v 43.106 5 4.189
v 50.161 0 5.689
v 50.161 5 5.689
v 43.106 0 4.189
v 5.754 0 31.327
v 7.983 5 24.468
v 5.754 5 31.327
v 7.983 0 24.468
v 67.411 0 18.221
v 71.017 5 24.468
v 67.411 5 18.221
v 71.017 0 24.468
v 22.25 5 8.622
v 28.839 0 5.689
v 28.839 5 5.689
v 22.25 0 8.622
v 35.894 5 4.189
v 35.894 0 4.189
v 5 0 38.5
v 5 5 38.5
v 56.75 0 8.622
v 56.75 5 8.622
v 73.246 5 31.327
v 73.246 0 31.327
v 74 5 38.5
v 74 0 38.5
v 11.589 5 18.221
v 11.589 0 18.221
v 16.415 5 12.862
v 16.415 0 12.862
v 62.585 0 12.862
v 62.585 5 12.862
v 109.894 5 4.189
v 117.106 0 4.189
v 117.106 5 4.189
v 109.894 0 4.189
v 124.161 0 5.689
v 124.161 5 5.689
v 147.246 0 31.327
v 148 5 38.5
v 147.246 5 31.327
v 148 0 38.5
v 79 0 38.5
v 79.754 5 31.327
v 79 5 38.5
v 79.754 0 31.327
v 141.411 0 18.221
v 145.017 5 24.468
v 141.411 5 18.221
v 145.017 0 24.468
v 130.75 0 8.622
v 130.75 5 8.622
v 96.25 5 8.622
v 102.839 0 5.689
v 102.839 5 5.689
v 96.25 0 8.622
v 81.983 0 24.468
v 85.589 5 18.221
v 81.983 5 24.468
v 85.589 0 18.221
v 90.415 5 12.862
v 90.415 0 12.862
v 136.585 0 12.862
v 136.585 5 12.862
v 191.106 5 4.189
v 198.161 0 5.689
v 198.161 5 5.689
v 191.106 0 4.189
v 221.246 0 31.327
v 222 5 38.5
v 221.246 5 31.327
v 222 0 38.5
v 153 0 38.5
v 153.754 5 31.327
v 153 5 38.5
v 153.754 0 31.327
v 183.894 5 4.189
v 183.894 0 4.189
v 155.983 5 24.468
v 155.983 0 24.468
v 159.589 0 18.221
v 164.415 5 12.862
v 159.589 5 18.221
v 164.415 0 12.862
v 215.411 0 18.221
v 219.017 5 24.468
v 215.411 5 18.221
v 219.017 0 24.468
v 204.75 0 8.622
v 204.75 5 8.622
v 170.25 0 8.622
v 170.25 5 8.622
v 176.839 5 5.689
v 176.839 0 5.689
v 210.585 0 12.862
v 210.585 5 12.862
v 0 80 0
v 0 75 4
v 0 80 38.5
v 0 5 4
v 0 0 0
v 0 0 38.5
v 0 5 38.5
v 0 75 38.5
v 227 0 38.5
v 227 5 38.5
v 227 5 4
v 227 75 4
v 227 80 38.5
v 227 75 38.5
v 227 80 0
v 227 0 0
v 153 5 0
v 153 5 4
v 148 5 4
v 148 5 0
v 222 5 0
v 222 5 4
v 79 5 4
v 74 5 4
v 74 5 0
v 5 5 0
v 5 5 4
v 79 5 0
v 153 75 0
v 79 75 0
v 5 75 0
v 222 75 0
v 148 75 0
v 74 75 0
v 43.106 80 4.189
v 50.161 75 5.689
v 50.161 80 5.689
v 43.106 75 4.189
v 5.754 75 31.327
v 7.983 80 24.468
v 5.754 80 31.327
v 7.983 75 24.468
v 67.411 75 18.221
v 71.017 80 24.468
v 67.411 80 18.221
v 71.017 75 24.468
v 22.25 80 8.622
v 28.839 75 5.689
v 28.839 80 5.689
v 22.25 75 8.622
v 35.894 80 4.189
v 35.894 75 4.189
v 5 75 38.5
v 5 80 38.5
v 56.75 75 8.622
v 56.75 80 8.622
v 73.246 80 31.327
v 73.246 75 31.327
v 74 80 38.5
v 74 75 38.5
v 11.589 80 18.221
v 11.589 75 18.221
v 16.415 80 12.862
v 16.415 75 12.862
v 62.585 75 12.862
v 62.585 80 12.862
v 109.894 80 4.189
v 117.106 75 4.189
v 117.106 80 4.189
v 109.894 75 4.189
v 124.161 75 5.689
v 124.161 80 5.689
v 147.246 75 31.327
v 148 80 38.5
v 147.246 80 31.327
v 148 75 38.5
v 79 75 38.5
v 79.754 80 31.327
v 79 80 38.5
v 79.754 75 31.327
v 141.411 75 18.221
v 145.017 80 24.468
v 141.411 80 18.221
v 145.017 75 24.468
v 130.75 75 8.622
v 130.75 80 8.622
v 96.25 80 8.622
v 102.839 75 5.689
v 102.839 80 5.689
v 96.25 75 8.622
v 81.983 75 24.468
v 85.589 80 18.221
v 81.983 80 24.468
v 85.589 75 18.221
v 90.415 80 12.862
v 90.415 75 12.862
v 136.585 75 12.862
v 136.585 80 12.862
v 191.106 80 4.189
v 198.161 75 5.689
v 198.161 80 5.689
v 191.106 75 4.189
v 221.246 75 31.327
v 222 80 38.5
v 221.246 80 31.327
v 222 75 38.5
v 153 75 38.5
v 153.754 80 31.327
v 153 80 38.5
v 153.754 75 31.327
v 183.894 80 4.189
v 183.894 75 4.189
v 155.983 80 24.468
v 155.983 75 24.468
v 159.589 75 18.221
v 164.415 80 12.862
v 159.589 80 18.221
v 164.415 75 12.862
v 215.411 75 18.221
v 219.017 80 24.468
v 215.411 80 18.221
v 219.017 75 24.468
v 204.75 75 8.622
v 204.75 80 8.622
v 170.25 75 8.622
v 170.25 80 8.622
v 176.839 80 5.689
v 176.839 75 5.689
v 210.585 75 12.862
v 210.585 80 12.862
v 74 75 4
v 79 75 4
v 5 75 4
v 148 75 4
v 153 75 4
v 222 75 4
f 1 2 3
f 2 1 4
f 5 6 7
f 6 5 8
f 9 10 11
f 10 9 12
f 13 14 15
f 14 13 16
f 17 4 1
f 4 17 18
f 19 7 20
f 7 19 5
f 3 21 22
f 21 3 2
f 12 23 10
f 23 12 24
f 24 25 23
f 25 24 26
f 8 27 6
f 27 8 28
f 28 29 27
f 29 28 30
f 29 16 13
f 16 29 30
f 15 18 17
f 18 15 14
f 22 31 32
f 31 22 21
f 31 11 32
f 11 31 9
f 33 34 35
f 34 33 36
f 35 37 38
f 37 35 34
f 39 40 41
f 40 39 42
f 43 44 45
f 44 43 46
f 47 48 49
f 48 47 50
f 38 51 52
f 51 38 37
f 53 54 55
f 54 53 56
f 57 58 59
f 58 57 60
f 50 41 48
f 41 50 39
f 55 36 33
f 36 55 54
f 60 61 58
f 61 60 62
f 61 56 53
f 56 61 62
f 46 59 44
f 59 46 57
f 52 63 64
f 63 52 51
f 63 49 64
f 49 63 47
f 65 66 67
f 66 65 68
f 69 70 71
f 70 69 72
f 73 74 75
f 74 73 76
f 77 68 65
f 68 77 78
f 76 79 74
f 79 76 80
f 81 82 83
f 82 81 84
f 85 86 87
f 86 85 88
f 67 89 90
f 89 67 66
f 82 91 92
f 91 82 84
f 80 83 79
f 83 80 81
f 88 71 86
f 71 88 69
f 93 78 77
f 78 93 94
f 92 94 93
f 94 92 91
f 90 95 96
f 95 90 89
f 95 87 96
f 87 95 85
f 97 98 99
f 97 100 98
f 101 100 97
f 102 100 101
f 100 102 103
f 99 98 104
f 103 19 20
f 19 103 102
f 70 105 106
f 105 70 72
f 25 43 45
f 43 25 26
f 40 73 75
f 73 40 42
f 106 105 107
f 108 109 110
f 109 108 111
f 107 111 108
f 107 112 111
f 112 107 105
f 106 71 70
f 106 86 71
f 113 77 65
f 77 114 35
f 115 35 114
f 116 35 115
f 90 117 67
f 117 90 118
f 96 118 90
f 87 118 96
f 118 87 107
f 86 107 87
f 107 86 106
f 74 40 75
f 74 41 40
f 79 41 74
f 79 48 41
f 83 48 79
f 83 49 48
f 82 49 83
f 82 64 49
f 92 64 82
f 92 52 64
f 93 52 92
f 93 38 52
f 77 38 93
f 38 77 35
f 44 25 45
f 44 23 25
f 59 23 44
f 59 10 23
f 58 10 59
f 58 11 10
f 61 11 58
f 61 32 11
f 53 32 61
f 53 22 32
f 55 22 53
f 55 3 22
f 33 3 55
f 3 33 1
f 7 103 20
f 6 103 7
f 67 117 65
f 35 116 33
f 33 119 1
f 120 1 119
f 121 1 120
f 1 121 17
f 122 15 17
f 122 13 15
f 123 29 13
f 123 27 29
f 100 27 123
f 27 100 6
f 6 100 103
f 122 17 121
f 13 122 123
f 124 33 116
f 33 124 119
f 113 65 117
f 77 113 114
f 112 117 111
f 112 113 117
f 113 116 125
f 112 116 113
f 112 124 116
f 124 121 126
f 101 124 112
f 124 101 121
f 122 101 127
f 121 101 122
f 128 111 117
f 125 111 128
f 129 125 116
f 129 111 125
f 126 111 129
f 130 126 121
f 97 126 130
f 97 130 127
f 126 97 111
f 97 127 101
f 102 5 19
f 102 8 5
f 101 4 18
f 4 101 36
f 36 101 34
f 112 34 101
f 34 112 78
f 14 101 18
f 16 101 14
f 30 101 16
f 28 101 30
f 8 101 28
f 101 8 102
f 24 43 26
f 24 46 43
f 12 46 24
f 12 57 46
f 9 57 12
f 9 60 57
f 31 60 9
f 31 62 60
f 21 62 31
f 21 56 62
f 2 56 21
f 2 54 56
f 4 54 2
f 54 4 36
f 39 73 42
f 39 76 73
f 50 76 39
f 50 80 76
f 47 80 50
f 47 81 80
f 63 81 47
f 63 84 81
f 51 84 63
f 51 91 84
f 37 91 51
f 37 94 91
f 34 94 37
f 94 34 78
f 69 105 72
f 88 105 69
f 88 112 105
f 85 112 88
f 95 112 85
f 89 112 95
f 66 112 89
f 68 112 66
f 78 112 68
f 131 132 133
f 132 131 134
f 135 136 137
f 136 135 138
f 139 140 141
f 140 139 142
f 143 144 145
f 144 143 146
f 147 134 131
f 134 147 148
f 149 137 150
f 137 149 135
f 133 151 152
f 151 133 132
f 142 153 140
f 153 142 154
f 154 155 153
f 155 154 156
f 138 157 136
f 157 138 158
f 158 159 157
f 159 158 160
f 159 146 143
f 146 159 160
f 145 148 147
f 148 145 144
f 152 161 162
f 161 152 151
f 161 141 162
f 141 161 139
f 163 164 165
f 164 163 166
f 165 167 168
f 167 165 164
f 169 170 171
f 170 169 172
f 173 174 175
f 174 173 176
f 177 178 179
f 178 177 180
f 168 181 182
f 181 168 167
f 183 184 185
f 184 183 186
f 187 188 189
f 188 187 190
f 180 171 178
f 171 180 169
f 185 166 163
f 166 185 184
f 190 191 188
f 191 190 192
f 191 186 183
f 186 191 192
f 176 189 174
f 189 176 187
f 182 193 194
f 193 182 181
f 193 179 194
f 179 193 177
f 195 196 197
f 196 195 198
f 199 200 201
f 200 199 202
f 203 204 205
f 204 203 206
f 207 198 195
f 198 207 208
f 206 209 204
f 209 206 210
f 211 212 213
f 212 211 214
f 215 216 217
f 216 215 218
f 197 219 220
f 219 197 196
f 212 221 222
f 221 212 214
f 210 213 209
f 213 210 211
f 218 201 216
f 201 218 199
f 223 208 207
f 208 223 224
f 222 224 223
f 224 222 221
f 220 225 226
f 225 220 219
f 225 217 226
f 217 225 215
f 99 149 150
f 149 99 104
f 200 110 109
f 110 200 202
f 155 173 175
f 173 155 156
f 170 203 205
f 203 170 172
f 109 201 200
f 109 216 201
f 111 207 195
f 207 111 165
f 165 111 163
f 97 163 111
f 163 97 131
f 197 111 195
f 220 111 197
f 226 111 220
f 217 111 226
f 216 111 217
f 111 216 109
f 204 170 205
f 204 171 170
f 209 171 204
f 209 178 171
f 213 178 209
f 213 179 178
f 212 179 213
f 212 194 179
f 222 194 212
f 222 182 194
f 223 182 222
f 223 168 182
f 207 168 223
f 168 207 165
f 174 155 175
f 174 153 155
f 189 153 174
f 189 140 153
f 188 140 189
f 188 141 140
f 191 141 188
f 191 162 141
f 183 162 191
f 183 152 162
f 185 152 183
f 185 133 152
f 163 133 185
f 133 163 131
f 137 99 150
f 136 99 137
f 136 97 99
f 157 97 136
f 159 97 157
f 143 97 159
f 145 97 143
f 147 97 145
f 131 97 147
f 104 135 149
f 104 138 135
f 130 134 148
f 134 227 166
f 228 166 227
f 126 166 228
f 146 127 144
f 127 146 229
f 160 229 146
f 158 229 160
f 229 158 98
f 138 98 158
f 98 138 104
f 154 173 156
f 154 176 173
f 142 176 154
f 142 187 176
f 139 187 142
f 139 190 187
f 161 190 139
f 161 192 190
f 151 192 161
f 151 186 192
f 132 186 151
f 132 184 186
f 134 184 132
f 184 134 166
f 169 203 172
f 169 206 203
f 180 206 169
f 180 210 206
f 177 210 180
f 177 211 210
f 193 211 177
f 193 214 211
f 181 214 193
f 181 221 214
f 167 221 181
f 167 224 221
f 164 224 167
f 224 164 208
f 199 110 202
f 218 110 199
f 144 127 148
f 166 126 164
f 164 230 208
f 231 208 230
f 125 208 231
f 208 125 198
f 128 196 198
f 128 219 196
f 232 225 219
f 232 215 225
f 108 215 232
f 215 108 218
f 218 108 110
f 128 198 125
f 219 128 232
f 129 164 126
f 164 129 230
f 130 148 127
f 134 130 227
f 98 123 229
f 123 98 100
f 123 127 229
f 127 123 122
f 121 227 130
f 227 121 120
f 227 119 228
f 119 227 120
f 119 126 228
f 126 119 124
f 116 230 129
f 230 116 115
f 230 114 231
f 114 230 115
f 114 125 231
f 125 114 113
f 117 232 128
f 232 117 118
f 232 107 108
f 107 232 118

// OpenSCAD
bottle_radius = 34.5; //Maximum radius of bottles (or cans) you would like to hold
bottle_length = 80; //The length along the bottle that maintains it's max radius
segments = 3; // How many bottles wide you'd like the rack to be
bottle_spacing = 5; // the distance between bottles
strip_thickness = 5; // The thickness of the strips
bottom_thickness = 4; // The distance the containers will be held above the surface

rack(bottle_length, strip_thickness, bottom_thickness, bottle_spacing, bottle_radius, segments);

module bottle(height, radius)
{
    rotate([90,0,0]) cylinder(h=height,r=radius) ;
}

module strip(thickness, lift, post_width, radius, n) {
    difference() {
        cube([
            rack_length(radius, post_width, n),
            thickness,
            radius + lift]);
        for (x = [
                0:
                radius*2 + post_width:
                radius*2*(n-1) + (post_width*(n-1))]) {
            
            translate ( [ x + radius + post_width, thickness + 1, radius + lift]            ) bottle(thickness + 2, radius);
            
        }
    }
}

module brace(height, width, length){
    
}

function rack_length (radius, spacing, segments) = radius*2*(segments) + (spacing*(segments+1));

module rack(depth, thickness, lift, spacing, radius, segments) {
    strip(thickness=thickness, lift=lift, post_width=spacing, radius=radius, n=segments);
    translate([0,depth-thickness, 0]) strip(thickness=thickness, lift=lift, post_width=spacing, radius=radius, n=segments);
    echo("The rack will be ", rack_length(radius, spacing, segments) , " units wide");
        
    
    for (x = [0:(radius*2+spacing):rack_length(radius, spacing, segments)]){
        translate([x,0,0]) cube([spacing, depth, lift]);
    }
}
